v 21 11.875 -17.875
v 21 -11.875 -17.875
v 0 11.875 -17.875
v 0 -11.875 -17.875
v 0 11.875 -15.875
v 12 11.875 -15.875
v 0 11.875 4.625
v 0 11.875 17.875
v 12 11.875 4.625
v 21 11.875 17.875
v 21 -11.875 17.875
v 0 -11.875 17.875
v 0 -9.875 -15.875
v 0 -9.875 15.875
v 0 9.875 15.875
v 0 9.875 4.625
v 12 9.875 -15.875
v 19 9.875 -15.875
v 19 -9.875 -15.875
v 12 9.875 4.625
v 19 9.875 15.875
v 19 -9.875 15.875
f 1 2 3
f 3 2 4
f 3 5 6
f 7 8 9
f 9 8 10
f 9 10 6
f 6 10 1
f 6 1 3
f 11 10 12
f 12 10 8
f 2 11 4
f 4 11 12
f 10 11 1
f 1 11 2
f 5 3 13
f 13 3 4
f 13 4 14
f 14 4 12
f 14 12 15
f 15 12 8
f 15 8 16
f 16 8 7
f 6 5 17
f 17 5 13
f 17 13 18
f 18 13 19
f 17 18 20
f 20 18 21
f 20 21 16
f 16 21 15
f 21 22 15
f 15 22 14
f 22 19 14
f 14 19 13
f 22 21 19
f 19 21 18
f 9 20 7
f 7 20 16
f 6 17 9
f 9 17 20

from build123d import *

# Parameters (mm, degrees)
SKETCH4_W           = 31.75
SKETCH4_H           = 19.75
BOSS_EXTRUDE1_DEPTH = 19
SHELL1_T            = 2
SKETCH5_W           = 12
SKETCH5_H           = 20.5
CUT_EXTRUDE1_DEPTH  = 2


with BuildPart() as part:
    # Sketch4 → Boss-Extrude1 (new body)
    with BuildSketch(Plane(origin=(0, 0, 0), x_dir=(0, 0, -1), z_dir=(1, 0, 0))):
        Rectangle(SKETCH4_W, SKETCH4_H)
    extrude(amount=BOSS_EXTRUDE1_DEPTH)

    # Shell1
    shell1_openings = [part.faces().sort_by_distance(p)[0] for p in [
        (0, 0, 0),
    ]]
    offset(amount=SHELL1_T, openings=shell1_openings, kind=Kind.INTERSECTION)

    # Sketch5 → Cut-Extrude1 (cut)
    with BuildSketch(Plane(origin=(0, 11.875, 0), x_dir=(1, 0, 0), z_dir=(0, 1, 0))):
        with Locations((6, 5.625)):
            Rectangle(SKETCH5_W, SKETCH5_H)
    extrude(amount=-CUT_EXTRUDE1_DEPTH, mode=Mode.SUBTRACT)


solid = part.part
